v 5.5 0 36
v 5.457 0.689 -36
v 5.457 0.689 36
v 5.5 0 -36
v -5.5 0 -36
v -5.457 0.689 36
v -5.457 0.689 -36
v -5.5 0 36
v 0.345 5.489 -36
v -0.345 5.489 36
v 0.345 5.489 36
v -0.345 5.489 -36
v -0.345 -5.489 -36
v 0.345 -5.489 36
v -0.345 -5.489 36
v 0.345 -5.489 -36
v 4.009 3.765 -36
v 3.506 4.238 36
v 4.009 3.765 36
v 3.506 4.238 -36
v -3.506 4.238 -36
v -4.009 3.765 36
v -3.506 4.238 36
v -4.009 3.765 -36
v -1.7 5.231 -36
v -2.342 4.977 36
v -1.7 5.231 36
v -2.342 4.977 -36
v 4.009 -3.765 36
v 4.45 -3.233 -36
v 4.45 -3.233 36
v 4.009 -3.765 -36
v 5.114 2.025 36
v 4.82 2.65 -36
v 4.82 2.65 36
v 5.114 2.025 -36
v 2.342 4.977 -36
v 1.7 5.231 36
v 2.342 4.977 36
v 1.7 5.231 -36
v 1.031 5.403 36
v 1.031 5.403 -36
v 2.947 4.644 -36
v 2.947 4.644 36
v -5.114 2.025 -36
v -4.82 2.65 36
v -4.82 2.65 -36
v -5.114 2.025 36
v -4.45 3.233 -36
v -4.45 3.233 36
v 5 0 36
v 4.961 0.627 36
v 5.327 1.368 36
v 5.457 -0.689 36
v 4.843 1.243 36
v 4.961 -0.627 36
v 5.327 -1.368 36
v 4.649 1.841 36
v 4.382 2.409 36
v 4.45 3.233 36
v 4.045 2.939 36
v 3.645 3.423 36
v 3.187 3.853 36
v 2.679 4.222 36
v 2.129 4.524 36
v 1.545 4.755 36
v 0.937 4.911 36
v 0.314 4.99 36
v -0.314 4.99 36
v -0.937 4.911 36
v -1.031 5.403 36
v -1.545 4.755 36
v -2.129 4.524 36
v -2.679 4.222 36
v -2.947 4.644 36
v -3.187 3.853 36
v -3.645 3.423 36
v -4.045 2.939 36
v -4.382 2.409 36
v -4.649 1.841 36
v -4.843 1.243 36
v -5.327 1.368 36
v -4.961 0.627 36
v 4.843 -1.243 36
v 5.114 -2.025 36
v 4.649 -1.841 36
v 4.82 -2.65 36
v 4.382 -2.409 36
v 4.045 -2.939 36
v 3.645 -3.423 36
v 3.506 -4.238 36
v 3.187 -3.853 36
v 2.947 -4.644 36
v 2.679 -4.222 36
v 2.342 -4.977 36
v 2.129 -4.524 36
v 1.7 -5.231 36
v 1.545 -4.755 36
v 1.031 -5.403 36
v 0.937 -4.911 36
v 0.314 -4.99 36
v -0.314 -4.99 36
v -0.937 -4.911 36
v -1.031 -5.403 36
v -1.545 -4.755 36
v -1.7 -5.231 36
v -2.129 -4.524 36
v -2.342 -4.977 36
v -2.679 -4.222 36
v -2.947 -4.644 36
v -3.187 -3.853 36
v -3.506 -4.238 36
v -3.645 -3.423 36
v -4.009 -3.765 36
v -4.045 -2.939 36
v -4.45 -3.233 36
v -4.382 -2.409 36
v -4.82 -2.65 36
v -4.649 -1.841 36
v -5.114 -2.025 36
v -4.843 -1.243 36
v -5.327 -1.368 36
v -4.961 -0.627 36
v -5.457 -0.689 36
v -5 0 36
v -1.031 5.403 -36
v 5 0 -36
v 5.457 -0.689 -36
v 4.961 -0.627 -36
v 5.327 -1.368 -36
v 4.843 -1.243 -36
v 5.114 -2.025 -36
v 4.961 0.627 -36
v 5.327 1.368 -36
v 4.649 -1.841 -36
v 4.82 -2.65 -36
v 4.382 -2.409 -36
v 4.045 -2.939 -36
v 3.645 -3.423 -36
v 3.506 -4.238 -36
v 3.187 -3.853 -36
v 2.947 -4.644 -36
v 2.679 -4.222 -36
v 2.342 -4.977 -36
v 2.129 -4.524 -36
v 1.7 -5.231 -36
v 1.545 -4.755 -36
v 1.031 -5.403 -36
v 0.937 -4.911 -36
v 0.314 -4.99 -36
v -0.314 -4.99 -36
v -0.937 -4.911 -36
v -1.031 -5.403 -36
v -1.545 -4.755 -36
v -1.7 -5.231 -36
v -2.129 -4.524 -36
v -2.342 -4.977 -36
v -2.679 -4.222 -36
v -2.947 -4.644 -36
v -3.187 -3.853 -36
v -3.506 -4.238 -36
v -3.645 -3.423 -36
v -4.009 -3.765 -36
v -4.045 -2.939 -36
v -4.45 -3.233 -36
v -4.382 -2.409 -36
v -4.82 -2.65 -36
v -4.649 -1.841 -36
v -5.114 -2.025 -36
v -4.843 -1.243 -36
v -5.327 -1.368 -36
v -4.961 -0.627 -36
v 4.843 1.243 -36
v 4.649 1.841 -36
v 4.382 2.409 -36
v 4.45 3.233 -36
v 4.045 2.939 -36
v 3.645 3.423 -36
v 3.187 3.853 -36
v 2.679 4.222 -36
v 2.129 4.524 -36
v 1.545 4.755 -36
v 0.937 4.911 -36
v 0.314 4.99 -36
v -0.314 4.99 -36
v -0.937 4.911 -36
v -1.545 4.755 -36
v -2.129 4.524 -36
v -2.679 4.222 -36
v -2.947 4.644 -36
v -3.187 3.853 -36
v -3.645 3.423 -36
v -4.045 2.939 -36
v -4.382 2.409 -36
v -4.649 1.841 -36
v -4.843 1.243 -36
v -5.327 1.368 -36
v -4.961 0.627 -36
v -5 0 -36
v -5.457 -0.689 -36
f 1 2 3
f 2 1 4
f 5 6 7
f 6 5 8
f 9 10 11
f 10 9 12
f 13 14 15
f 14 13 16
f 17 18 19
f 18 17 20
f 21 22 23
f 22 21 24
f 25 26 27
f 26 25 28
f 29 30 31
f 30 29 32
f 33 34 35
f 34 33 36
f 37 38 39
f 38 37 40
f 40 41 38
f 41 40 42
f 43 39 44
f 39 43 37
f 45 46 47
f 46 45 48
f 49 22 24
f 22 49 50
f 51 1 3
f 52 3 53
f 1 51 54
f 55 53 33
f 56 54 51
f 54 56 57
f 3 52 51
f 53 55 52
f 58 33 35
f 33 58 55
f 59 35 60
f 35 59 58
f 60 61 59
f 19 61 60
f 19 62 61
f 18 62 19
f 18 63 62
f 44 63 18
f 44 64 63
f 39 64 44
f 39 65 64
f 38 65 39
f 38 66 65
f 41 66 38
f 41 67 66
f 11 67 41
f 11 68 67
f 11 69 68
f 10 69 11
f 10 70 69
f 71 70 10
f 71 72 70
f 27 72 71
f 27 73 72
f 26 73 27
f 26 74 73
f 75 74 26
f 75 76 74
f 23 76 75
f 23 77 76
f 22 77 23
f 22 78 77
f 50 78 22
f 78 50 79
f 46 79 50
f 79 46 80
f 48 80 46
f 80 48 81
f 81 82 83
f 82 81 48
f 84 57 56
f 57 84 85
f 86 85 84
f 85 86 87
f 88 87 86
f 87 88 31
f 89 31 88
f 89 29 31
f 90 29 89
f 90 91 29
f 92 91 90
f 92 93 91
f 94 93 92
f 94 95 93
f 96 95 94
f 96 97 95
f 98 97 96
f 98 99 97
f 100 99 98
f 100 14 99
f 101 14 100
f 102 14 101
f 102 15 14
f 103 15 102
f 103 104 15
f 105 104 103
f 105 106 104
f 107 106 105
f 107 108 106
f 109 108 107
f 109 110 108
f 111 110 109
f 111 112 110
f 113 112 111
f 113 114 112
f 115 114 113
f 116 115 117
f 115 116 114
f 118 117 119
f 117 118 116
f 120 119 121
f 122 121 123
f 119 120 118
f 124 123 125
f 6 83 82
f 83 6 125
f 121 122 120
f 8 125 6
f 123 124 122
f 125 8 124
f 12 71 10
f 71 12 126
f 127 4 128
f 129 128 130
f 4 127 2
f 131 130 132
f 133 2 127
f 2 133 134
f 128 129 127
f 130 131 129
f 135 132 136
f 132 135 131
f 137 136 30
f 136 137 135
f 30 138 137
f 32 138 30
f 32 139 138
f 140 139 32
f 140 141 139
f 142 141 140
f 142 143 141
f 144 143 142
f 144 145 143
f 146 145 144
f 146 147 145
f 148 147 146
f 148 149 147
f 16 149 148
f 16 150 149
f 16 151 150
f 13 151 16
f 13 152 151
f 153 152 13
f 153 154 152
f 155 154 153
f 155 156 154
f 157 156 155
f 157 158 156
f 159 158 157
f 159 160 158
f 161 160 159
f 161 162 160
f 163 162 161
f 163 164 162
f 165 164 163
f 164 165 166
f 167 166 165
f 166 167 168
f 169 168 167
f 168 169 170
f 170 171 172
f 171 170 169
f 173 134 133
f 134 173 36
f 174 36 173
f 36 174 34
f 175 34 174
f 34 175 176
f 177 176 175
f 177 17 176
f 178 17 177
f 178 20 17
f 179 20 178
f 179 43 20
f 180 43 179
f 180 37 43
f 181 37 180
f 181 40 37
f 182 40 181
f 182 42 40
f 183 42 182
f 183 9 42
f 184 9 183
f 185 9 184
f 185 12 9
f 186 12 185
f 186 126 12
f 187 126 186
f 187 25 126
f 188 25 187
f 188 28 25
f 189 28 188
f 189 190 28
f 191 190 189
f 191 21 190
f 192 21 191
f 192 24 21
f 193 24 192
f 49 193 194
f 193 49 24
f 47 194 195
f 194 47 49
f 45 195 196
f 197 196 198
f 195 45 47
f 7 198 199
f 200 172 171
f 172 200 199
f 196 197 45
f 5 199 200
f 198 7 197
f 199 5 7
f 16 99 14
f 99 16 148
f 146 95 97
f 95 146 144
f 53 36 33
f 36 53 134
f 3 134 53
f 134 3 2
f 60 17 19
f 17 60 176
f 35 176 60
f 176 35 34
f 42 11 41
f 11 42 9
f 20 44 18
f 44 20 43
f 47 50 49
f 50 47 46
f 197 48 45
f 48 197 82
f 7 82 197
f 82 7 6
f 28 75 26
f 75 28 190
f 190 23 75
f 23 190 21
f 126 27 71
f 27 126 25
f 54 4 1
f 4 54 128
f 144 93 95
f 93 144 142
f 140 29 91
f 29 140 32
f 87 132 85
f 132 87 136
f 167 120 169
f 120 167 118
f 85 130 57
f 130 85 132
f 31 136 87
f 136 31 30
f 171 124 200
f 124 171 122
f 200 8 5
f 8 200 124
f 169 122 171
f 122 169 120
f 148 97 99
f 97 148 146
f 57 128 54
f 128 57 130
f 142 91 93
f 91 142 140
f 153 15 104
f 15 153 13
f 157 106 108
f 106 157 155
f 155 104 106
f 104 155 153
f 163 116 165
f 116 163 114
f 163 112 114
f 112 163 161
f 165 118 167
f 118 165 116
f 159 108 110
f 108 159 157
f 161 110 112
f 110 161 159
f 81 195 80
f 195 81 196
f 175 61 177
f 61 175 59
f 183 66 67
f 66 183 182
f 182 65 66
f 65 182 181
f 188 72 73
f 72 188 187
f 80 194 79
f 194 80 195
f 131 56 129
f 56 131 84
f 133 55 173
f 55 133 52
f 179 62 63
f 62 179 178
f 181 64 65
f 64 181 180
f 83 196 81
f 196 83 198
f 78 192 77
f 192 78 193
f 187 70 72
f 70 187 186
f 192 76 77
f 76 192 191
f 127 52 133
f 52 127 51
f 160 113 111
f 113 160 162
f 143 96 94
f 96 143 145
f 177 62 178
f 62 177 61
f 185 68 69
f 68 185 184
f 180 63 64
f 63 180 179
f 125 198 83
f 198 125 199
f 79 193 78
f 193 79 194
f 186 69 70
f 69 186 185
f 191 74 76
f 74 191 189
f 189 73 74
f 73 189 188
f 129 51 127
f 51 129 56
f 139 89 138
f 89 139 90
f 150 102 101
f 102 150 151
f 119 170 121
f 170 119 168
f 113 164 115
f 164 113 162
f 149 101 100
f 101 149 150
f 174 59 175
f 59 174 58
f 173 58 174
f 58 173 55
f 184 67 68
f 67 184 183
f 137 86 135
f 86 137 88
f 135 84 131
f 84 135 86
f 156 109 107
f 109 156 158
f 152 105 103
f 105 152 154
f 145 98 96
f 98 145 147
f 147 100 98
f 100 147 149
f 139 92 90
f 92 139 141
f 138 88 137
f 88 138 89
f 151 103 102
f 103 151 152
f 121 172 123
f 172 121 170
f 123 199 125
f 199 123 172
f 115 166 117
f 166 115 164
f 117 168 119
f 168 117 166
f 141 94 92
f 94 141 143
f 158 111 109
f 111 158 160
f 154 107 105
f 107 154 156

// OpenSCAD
$fn = 50;


difference() {
	union() {
		translate(v = [0, 0, -36.0000000000]) {
			cylinder(h = 72, r = 5.5000000000);
		}
	}
	union() {
		translate(v = [0, 0, -100.0000000000]) {
			cylinder(h = 200, r = 5.0000000000);
		}
	}
}
